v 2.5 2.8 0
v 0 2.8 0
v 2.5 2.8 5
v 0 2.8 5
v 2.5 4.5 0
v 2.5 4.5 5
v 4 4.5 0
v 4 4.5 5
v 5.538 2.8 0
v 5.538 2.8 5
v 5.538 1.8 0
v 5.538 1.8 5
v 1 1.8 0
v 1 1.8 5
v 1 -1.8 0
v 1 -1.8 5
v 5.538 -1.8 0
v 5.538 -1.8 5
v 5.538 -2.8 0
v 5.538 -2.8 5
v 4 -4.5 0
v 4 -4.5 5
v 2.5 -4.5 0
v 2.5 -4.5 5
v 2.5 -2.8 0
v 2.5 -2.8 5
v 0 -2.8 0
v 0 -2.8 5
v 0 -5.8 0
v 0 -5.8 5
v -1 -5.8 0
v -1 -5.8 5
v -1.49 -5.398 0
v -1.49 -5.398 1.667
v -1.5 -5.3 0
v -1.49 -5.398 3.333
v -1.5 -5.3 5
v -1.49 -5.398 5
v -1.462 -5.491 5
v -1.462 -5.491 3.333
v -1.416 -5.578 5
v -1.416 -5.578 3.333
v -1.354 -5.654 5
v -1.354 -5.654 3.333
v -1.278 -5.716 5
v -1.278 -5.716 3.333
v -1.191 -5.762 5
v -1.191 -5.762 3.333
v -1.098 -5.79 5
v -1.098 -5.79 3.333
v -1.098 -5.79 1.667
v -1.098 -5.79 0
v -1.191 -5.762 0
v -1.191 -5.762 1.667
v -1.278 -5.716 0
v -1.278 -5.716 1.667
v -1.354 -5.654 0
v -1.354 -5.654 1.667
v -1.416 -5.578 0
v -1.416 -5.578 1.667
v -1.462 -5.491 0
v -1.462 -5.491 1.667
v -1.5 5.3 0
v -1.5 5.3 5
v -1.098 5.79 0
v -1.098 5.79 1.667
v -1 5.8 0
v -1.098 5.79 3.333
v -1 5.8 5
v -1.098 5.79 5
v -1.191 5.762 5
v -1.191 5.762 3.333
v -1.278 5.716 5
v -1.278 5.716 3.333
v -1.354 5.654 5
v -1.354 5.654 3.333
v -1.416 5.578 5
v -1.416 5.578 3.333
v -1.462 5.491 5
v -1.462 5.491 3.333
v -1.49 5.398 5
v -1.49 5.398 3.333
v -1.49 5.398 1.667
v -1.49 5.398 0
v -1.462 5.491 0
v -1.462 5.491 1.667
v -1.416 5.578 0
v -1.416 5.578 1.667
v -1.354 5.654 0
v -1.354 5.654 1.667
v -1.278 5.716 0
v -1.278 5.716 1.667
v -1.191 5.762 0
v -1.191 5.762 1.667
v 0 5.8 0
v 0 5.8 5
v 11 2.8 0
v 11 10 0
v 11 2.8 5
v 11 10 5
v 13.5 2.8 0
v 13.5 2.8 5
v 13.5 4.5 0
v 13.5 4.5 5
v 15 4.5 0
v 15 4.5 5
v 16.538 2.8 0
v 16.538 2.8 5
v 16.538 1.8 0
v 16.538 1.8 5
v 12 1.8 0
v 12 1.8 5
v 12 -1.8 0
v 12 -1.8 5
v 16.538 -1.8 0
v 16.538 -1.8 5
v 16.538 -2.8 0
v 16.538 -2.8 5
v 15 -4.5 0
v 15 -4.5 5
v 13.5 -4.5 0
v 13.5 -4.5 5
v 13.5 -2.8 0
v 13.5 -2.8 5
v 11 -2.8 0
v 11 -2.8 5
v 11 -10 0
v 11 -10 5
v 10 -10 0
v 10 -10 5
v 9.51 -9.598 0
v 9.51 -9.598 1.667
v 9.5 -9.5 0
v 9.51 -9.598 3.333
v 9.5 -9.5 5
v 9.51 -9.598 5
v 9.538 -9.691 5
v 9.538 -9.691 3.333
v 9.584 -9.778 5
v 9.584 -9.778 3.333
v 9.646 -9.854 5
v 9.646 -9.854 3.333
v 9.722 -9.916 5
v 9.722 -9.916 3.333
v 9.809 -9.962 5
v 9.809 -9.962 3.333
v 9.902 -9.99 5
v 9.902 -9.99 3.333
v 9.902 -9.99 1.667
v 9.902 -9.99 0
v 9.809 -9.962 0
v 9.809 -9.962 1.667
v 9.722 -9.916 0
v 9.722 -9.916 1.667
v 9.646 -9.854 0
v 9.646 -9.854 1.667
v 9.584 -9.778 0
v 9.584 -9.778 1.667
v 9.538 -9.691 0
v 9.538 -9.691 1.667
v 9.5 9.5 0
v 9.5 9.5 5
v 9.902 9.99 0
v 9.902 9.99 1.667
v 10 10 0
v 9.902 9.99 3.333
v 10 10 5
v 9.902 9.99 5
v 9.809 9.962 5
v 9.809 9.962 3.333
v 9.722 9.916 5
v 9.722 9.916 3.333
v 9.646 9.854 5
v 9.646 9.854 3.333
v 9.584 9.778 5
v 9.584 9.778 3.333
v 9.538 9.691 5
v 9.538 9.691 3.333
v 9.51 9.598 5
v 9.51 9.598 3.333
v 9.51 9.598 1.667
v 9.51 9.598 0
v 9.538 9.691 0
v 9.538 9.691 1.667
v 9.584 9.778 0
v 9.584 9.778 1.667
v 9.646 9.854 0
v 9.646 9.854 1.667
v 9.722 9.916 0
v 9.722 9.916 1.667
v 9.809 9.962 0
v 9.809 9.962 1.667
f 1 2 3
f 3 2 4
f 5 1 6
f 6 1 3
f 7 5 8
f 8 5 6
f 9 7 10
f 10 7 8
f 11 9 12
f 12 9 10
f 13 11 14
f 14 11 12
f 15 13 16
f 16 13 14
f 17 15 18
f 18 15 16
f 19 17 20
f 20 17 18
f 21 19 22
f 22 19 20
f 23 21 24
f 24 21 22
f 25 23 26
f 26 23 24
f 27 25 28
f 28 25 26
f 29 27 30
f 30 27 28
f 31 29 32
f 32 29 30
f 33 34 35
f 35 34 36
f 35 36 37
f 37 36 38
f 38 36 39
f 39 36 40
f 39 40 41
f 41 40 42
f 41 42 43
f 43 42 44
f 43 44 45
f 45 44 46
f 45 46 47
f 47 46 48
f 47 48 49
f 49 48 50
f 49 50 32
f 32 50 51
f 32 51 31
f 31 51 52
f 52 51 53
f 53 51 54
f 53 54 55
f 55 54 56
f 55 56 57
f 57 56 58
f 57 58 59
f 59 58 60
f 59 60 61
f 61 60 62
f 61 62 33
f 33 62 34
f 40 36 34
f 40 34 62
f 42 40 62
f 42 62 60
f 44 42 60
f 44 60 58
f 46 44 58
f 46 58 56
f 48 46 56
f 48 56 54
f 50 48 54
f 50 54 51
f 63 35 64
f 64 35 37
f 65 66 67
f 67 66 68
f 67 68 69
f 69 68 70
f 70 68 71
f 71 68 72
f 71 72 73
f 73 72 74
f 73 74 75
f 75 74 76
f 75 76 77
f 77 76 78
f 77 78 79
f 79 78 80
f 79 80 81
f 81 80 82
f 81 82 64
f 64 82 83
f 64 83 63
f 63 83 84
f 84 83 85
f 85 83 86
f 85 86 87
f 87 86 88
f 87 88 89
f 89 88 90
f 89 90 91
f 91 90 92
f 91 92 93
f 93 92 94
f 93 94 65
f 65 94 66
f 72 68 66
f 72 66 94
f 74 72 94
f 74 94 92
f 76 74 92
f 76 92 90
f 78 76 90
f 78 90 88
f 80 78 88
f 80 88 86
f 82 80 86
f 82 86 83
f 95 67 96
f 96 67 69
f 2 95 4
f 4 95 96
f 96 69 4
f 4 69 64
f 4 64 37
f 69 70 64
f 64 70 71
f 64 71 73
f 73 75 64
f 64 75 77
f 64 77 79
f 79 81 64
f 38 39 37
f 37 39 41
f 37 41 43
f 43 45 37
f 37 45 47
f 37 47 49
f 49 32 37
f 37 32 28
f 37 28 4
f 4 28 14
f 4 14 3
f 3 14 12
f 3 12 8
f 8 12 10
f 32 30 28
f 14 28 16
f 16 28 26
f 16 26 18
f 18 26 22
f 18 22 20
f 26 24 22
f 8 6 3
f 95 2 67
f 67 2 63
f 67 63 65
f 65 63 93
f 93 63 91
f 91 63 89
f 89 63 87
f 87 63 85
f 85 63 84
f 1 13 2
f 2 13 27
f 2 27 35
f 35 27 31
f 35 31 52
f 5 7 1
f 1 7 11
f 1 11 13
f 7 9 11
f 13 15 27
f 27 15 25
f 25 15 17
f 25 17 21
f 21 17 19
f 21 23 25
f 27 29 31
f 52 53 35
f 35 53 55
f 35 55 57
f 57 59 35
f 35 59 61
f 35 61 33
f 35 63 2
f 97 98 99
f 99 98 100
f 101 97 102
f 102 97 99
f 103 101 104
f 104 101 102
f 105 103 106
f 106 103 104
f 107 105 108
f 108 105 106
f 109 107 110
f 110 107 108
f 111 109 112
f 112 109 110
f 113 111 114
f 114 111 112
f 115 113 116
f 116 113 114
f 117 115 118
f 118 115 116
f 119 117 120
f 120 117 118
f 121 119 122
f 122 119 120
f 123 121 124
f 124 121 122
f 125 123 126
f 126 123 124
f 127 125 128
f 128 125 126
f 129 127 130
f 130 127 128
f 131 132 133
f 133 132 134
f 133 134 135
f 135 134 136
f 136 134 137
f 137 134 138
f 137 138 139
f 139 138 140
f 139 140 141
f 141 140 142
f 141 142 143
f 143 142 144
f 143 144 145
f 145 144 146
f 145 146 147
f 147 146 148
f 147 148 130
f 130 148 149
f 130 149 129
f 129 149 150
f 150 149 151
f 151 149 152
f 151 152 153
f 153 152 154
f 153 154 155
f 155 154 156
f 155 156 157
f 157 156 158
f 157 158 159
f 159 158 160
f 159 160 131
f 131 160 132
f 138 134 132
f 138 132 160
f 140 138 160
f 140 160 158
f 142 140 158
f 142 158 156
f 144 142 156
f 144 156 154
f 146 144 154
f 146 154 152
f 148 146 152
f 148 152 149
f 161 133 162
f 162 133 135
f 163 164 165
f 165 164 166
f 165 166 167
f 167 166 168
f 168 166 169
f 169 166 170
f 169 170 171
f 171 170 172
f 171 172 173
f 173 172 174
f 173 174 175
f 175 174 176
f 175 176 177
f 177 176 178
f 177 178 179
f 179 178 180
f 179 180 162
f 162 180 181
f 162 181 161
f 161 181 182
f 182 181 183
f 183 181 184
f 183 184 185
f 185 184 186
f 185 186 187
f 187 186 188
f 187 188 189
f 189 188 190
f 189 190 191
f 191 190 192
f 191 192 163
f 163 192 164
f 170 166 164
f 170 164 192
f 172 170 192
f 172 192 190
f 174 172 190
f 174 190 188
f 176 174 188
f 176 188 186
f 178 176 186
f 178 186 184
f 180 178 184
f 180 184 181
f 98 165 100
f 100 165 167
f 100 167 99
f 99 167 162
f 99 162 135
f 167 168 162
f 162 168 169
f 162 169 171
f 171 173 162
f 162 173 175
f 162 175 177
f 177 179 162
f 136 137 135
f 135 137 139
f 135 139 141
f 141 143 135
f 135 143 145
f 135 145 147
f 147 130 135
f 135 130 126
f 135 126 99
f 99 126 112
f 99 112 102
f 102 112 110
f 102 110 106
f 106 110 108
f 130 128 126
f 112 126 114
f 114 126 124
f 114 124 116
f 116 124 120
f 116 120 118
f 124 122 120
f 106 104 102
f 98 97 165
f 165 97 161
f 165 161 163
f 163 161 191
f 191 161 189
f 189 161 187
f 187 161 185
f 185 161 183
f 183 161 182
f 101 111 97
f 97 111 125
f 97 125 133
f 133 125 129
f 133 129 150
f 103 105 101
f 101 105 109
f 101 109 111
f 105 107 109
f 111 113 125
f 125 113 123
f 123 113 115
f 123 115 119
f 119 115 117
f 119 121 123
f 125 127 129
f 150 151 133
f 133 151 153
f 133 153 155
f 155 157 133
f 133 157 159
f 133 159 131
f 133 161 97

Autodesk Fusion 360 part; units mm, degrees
sketch "Esquisse1" plane through (0, 0, 0) normal (0, 0, 1) x (1, 0, 0)
  line L0 (4, -4.5) -> (2.5, -4.5)
  line L1 (2.5, -4.5) -> (2.5, -2.8)
  line L2 (2.5, -2.8) -> (0, -2.8)
  line L3 (0, -2.8) -> (0, 2.8)
  line L4 (0, 2.8) -> (2.5, 2.8)
  line L5 (2.5, 2.8) -> (2.5, 4.5)
  line L6 (5.5382, -2.8) -> (4, -4.5)
  line L7 (0, 5.8) -> (-1, 5.8)
  line L8 (-1.5, 5.3) -> (-1.5, -5.3)
  line L9 (-1, -5.8) -> (0, -5.8)
  line L10 (0, -5.8) -> (0, 5.8)
  line L11 (1.75, 0) -> (22.5, 0)
  line L12 (5.5382, 2.8) -> (4, 4.5)
  line L13 (4, 4.5) -> (2.5, 4.5)
  line L14 (1, 1.8) -> (5.5382, 1.8)
  line L15 (5.5382, -1.8) -> (1, -1.8)
  line L16 (1, -1.8) -> (1, 1.8)
  line L17 (5.5382, 2.8) -> (5.5382, 1.8)
  line L18 (5.5382, -1.8) -> (5.5382, -2.8)
  arc A0 (-1.5, -5.3) -> (-1, -5.8) centre (-1, -5.3) ccw
  arc A1 (-1, 5.8) -> (-1.5, 5.3) centre (-1, 5.3) ccw
  line L19 (10, -10) -> (11, -10)
  line L20 (11, -10) -> (11, 10)
  line L21 (11, 10) -> (10, 10)
  arc A2 (10, 10) -> (9.5, 9.5) centre (10, 9.5) ccw
  line L22 (9.5, 9.5) -> (9.5, -9.5)
  arc A3 (9.5, -9.5) -> (10, -10) centre (10, -9.5) ccw
  line L23 (16.5382, 2.8) -> (15, 4.5)
  line L24 (16.5382, 2.8) -> (16.5382, 1.8)
  line L25 (12, 1.8) -> (16.5382, 1.8)
  line L26 (12, -1.8) -> (12, 1.8)
  line L27 (16.5382, -1.8) -> (12, -1.8)
  line L28 (16.5382, -1.8) -> (16.5382, -2.8)
  line L29 (16.5382, -2.8) -> (15, -4.5)
  line L30 (15, -4.5) -> (13.5, -4.5)
  line L31 (13.5, -4.5) -> (13.5, -2.8)
  line L32 (13.5, -2.8) -> (11, -2.8)
  line L33 (11, -2.8) -> (11, 2.8)
  line L34 (13.5, 2.8) -> (13.5, 4.5)
  line L35 (15, 4.5) -> (13.5, 4.5)
  line L36 (11, 2.8) -> (13.5, 2.8)
  point P0 (-1.5, 5.8)
  dimension "d17" = 2.5
  dimension "d18" = 2.5
  dimension "d19" = 1.5
  dimension "d21" = 5.6
  dimension "d23" = 5.6
  dimension "d26" = 1.7
  dimension "d9" = 1.5
  dimension "d11" = 132.139
  dimension "d14" = 1
  dimension "d15" = 1
  dimension "d16" = 0.5
  dimension "d24" = 3
  dimension "d25" = 2.5
  dimension "d27" = 2.5
  dimension "d28" = 1.5
  dimension "d29" = 5.6
  dimension "d30" = 5.6
  dimension "d31" = 1.7
  dimension "d32" = 132.139
  dimension "d33" = 1
  dimension "d34" = 1
  dimension "d35" = 0.5
  dimension "d37" = 20
extrude "Extrusion1" add sketch "Esquisse1" along normal blind 5 makes body 1 at (-1.5, 1.7667, 1.6667) makes body 2 at (9.5, 3.1667, 1.6667)
